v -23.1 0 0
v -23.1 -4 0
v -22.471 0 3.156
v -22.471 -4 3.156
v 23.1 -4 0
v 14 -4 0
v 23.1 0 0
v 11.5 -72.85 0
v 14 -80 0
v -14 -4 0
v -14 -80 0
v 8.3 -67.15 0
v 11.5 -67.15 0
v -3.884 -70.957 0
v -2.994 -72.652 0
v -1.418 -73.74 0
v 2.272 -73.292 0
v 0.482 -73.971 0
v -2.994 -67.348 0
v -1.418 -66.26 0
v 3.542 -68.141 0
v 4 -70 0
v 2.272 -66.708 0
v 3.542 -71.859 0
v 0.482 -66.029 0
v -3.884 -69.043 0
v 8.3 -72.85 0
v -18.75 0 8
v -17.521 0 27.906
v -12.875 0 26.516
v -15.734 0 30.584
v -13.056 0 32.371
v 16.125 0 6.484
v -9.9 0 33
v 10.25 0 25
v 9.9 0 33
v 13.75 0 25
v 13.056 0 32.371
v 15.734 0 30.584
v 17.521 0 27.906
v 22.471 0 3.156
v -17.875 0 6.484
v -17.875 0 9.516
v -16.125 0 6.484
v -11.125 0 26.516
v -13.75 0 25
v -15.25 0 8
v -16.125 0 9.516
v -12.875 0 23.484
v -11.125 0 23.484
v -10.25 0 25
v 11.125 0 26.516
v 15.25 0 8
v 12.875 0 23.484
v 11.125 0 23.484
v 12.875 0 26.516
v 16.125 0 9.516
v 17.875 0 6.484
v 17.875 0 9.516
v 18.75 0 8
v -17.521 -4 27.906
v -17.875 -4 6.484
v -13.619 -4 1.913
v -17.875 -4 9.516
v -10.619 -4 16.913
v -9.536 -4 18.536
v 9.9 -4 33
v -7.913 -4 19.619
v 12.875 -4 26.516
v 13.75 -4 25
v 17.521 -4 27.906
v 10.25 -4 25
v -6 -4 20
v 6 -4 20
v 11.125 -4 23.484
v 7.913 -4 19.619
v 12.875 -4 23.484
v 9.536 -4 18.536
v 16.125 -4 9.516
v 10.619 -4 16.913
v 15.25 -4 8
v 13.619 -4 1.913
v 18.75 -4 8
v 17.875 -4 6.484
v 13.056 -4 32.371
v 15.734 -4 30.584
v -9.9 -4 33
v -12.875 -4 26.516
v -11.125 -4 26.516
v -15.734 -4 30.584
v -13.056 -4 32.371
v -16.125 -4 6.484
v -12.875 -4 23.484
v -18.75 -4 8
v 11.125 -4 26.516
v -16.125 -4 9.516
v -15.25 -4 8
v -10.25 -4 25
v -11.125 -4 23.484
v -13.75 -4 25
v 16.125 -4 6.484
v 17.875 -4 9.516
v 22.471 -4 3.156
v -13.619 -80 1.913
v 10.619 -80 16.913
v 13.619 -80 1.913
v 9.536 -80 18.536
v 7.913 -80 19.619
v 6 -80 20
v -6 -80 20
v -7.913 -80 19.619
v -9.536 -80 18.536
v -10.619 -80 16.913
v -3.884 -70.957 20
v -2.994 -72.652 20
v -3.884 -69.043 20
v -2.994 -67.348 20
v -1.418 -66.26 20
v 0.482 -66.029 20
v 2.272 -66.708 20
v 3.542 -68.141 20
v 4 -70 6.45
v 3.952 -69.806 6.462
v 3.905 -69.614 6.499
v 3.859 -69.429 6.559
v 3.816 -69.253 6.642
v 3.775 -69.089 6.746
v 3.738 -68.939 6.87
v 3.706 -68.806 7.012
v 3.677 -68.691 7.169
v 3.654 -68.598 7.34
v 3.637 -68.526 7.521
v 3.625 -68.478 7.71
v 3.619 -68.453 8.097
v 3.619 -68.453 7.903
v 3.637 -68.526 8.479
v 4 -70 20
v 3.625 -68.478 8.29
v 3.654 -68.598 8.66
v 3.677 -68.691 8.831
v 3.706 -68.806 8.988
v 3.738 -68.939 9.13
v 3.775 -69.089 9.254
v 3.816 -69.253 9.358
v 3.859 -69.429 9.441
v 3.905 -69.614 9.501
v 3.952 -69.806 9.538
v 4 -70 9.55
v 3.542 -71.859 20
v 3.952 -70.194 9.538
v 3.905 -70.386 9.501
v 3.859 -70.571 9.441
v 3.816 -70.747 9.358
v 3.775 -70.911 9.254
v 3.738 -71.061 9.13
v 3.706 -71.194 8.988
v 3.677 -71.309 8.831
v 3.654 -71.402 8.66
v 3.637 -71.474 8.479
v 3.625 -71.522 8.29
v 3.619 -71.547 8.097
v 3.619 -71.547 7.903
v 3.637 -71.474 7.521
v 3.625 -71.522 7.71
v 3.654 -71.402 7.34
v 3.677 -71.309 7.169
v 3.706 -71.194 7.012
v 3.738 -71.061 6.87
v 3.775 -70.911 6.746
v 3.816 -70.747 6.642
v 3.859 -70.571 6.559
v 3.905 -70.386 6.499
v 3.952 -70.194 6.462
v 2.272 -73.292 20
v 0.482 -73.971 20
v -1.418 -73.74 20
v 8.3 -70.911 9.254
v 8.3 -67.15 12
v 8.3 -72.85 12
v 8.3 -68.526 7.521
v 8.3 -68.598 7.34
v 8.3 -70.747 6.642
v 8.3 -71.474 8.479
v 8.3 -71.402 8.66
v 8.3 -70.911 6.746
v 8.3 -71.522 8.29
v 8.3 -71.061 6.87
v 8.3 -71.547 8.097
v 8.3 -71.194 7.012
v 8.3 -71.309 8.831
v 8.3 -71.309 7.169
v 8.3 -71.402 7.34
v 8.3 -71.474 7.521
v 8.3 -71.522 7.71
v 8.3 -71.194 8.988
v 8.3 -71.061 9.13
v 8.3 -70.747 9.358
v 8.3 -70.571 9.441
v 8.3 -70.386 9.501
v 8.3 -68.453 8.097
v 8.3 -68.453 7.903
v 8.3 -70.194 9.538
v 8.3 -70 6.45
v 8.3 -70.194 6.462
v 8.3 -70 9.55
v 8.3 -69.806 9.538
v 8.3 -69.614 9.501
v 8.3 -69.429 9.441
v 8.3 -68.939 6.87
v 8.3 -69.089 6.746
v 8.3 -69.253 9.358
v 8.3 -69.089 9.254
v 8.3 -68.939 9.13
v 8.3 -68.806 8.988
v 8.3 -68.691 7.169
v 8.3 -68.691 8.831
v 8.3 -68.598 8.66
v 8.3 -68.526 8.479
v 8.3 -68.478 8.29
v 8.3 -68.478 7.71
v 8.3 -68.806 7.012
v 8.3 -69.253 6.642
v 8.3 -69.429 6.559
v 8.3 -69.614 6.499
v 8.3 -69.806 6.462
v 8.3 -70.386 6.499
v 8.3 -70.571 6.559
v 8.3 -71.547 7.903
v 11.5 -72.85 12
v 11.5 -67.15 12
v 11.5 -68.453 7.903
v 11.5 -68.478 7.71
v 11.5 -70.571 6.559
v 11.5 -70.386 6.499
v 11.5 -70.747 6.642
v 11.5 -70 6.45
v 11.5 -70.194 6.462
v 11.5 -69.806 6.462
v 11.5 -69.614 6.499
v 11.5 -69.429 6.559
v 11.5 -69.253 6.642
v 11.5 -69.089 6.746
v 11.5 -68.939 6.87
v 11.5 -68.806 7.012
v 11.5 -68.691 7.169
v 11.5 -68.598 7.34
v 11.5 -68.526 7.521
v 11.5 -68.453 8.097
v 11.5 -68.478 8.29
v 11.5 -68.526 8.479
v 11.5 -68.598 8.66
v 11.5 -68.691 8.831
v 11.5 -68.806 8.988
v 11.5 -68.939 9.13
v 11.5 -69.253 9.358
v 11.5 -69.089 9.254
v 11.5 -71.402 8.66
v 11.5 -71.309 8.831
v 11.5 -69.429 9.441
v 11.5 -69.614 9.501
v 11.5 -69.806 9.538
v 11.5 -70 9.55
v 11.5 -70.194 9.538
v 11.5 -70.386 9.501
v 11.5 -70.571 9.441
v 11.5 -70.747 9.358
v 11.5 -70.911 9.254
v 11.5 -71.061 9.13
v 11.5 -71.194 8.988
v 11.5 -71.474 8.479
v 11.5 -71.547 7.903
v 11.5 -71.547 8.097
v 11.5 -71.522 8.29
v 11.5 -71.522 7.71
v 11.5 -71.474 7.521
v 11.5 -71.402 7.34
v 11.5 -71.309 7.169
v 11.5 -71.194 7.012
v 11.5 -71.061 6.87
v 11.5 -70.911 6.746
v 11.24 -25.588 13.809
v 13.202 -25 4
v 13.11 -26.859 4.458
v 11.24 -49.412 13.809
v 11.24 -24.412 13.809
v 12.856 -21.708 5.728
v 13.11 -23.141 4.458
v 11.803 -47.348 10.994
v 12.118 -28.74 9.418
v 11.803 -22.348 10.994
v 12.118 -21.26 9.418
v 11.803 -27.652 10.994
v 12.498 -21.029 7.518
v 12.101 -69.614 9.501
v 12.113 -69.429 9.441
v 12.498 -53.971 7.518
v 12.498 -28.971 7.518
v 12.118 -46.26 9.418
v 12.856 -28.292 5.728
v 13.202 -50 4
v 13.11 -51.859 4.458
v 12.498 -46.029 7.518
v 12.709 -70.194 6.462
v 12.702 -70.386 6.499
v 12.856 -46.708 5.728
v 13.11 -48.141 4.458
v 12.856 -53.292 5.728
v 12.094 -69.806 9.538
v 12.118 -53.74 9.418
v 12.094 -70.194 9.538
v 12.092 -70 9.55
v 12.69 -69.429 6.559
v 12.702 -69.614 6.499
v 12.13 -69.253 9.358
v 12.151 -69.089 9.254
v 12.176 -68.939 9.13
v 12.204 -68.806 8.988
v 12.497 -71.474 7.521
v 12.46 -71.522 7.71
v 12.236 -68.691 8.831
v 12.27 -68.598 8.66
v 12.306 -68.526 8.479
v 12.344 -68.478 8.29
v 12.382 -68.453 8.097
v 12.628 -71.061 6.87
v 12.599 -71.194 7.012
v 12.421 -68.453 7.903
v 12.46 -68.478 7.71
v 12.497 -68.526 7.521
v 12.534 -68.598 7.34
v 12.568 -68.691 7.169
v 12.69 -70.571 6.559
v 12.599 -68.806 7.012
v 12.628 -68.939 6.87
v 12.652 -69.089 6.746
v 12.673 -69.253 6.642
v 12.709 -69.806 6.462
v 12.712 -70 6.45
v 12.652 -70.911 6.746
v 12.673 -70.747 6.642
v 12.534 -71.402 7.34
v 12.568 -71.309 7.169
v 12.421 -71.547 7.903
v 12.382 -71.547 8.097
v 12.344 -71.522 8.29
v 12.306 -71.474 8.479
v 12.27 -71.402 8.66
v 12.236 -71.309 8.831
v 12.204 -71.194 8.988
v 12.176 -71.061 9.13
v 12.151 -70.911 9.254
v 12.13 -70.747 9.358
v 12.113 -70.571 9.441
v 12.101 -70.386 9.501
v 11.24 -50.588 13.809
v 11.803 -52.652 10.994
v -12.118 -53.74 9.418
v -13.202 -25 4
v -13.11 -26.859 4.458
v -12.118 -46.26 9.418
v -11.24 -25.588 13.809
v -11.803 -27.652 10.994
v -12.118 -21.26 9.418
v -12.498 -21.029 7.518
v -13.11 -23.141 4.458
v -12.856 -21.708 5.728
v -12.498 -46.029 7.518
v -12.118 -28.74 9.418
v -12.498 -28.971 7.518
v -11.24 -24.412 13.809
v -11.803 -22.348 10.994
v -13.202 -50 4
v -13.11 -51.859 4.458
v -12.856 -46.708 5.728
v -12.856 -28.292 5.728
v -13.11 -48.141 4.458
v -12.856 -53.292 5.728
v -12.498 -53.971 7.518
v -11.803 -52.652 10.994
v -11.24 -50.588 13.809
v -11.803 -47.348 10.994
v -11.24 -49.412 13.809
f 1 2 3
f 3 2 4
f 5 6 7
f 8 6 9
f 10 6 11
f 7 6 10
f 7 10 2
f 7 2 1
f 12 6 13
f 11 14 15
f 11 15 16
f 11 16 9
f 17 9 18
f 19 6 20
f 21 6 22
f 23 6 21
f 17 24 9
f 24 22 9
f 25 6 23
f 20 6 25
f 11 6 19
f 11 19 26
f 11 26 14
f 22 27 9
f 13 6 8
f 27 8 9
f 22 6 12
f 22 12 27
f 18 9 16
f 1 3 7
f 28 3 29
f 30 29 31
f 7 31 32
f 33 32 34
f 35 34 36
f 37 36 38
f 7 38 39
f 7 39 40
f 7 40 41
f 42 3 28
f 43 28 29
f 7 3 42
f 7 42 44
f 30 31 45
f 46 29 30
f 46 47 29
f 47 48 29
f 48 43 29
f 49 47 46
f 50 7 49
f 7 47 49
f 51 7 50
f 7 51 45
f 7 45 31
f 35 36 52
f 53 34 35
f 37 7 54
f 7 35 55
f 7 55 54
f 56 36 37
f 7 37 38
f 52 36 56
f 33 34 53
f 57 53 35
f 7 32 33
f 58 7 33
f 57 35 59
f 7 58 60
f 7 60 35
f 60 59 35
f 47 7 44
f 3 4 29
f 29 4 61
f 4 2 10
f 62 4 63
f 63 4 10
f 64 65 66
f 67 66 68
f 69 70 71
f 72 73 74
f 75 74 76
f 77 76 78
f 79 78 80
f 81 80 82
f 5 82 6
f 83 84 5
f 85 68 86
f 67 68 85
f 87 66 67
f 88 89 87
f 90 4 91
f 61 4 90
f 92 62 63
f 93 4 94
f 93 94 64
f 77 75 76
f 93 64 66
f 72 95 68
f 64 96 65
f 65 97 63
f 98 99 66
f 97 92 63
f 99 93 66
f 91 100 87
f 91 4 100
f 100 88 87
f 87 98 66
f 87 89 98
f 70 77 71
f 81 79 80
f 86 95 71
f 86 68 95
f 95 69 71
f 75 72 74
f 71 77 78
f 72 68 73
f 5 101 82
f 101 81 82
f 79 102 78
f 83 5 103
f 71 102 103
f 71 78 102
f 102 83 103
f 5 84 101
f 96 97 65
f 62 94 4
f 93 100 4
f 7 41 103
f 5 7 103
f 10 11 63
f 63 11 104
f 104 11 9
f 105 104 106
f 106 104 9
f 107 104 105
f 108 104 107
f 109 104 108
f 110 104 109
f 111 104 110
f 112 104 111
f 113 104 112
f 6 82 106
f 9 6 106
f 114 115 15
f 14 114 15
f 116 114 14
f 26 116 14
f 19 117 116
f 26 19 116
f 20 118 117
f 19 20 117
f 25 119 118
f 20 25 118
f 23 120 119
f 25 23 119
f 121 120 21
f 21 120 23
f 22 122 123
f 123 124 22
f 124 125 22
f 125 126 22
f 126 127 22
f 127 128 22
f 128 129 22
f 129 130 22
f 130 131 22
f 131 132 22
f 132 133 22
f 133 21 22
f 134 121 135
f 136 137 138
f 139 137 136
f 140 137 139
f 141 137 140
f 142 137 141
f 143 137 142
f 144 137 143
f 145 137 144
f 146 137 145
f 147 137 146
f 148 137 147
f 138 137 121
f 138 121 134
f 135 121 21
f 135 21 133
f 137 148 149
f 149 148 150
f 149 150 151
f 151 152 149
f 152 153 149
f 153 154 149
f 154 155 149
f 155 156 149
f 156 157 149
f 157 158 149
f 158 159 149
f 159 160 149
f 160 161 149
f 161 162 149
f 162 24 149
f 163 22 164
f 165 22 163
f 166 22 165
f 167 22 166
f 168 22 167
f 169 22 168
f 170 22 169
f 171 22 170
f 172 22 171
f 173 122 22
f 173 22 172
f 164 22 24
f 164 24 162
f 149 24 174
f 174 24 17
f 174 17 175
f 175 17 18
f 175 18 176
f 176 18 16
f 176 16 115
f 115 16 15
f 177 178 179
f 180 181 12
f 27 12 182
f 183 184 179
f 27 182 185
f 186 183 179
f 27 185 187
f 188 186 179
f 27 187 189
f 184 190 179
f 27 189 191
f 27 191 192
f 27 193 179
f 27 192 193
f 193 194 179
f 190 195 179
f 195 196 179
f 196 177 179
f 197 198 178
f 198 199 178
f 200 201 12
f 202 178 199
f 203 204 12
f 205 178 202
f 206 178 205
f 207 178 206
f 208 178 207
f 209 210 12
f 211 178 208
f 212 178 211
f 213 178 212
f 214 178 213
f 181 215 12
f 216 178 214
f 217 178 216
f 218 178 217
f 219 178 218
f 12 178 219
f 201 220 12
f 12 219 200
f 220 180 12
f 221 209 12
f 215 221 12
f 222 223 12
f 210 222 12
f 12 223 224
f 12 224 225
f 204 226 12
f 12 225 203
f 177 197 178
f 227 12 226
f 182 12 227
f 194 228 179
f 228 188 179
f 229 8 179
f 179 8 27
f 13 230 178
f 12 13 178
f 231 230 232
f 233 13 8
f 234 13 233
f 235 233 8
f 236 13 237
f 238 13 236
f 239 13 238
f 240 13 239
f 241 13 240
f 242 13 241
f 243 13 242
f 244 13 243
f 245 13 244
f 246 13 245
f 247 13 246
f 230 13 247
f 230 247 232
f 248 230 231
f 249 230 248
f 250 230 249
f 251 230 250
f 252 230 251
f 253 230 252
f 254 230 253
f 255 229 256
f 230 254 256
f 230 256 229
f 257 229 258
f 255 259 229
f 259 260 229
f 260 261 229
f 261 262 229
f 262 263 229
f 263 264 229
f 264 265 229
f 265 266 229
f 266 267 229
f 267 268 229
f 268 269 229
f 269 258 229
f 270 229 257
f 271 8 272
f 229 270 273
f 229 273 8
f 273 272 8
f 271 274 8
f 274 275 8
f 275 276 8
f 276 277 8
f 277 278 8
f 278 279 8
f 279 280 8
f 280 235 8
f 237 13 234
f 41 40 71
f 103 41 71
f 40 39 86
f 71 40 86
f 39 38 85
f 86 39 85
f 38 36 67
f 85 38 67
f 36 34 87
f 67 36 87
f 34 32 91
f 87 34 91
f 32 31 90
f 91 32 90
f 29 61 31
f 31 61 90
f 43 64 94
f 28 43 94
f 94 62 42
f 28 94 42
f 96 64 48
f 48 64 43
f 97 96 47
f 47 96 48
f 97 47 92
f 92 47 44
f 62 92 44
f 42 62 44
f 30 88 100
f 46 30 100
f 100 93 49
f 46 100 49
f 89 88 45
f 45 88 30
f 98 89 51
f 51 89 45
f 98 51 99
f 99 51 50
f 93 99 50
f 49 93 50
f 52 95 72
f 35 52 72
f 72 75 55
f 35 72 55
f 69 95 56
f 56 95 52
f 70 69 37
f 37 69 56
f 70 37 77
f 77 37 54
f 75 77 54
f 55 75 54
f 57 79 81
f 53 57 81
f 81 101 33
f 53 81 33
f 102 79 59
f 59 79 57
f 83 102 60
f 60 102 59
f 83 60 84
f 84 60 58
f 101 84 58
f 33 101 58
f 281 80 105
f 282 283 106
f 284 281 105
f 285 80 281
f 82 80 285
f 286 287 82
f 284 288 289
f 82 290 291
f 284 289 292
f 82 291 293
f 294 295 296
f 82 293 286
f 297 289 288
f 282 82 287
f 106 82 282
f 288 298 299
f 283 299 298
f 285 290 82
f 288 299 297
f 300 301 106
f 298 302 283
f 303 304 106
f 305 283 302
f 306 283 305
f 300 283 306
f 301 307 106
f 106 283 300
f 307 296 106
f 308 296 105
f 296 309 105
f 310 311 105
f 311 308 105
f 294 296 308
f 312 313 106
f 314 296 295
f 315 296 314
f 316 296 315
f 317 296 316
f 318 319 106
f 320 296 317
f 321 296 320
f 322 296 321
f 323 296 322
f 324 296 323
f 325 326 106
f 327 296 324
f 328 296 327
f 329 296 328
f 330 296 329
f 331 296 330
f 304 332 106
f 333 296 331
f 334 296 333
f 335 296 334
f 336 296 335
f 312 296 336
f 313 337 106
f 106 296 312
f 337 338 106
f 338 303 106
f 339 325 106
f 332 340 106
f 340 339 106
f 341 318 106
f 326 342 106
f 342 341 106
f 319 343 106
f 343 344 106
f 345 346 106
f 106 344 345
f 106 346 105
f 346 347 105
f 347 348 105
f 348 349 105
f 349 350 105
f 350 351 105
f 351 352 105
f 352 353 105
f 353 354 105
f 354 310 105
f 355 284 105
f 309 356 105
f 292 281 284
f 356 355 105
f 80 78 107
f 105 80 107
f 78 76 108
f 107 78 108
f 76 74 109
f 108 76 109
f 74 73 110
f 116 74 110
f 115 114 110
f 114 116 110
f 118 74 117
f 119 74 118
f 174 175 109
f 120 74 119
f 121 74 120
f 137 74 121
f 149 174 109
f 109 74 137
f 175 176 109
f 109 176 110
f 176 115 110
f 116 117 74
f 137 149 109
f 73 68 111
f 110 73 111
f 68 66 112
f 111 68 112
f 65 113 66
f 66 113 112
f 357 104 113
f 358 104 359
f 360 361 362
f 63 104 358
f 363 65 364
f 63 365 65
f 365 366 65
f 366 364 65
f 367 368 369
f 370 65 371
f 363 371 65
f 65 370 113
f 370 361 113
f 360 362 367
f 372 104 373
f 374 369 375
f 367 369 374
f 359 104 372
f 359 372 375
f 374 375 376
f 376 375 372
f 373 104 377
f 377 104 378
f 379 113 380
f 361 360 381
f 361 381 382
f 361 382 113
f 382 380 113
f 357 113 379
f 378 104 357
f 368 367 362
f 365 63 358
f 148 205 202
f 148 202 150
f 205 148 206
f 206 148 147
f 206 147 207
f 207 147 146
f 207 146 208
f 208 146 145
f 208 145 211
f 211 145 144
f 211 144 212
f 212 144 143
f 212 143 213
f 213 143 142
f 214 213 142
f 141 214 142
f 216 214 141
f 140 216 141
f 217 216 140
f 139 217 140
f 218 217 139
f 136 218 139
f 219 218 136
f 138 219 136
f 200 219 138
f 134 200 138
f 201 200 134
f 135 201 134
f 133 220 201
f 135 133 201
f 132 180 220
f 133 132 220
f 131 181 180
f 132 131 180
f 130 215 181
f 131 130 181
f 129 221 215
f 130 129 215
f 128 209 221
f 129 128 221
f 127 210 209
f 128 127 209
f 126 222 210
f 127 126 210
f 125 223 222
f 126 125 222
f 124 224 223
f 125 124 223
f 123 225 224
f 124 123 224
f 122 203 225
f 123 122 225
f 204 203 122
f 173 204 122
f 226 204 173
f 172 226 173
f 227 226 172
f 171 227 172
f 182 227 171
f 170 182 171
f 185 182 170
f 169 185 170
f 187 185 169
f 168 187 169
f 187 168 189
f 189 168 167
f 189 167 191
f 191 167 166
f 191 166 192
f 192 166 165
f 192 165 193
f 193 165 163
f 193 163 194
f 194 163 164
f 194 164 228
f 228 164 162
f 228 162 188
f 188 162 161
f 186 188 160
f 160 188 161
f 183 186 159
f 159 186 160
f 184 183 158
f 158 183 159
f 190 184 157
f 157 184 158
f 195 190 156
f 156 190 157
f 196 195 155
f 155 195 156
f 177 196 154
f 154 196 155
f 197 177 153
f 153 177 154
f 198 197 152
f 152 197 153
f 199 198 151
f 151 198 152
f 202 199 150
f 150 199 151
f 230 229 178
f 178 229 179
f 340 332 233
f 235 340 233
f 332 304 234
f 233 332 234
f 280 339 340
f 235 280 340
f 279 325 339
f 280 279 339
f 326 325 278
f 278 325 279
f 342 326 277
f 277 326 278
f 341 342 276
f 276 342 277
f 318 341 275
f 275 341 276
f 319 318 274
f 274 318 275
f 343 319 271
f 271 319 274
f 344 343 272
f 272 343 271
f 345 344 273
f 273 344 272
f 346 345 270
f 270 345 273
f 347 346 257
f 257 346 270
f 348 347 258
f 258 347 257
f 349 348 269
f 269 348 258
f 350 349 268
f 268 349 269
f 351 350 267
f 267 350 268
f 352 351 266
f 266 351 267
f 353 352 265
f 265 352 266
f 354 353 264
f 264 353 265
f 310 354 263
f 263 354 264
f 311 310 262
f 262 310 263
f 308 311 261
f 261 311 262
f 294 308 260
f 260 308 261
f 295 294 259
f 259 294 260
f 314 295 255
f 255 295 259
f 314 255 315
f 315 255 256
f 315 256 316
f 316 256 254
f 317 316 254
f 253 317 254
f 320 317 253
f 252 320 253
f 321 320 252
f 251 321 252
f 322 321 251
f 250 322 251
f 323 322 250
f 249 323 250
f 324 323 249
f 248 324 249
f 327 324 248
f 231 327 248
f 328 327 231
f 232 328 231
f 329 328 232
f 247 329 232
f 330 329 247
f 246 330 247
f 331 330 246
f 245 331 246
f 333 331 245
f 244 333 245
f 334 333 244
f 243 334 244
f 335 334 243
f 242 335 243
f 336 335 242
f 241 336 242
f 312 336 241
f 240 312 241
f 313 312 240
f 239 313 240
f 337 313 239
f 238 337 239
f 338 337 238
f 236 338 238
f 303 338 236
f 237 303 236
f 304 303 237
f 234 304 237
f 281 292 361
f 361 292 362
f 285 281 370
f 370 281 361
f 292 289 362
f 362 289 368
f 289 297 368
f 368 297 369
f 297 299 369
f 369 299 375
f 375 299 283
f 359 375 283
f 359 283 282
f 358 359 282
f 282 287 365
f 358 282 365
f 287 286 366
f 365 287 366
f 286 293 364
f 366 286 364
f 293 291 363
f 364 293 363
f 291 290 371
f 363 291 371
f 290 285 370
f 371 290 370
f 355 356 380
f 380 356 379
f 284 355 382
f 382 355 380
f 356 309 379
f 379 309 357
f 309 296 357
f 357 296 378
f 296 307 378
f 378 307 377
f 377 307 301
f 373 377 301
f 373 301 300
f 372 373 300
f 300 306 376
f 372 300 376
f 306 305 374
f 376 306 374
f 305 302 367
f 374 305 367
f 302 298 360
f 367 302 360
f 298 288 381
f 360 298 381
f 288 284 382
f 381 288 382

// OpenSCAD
// file: common_components.scad
module rod_clamp_holes(){

	bolt_head_radius = 3.5;
	bolt_shaft_radius = 1.55;
	depth = 20; 
	nut_depth = 8.5; 
	nut_radius = 2.0; 

	cylinder(h=depth, r=bolt_shaft_radius, $fn=50);

	cylinder(h=4, r=bolt_head_radius);

	translate([-nut_depth, -5.7/2, nut_depth]) 
		cube([nut_depth + nut_radius +2 , 5.7, 3.2]);

}

//rod_clamp_holes();




module warp_prevention(){

	translate([-100,-100,0]){
		for(i = [0:20:200]){
	
			translate([i, 0, 0])
				cube([2, 200, 2]);
	
			translate([0, i, 0])
				cube([200, 2, 2]);
	
		}
	}

}

module teardrop_cylinder(r, h){

	linear_extrude(height=h){
		hull(){
	
			circle(r=r);
			translate([-r * 1.25, 0])
				circle(r=1);
	
		}
	}
}
// main file
	
include <common_components.scad>

y_rod_height = 70;
rod_radius = 4;
screw_radius = 1.75;


//y_end_2d();

// rotate for printing

difference(){

	rotate([90,0,0]) 
		y_end();  


	//rotate([0,0,45]) 
	//	warp_prevention();

	//translate([sqrt(200),0,2])
	//	rotate([0,0,45]) 
	//		warp_prevention();


}

// no rotate for viewing
//y_end(); 

module y_end(){



	difference(){
	
		union(){
			linear_extrude(height=80)
				y_end_2d();

			translate([0, 0, 0]){
				linear_extrude(height=4)
					scale([1.65, 1.65])
						y_end_2d();
			}

		}


		translate([-50, -40, -5])
			#cube([100,40, 90]);
	
	
		//translate([-50, 16, -1])
		//	#cube([150,100, 40]);

		for(x = [17, -17]){ 			
			translate([x, 8, -1])
				#cylinder(r=screw_radius, h=6);
		}

		for(x = [12, -12]){ 			
			translate([x, 25, -1])
				#cylinder(r=screw_radius, h=6);
		}

	
		// y rods
		translate([0, 35, y_rod_height])
			rotate([90,0,0])
				#cylinder(r=rod_radius, h=60);
		
		translate([20, 8, y_rod_height])
			rotate([90,180,270])
				#rod_clamp_holes();

		translate([-30, 8, 25])
			rotate([-90,0,0])
				rotate([0,90,0])
					#teardrop_cylinder(r=rod_radius, h=60);
	
		translate([-30, 8, 50])
			rotate([-90,0,0])
				rotate([0,90,0])
					#teardrop_cylinder(r=rod_radius, h=60);



	}


}

module y_end_2d(){


	hull(){
		
		translate([-9, 0])
			circle(r=5);

		translate([9, 0])
			circle(r=5);

		translate([-6, 15])
			circle(r=5);

		translate([6, 15])
			circle(r=5);


	}

}
